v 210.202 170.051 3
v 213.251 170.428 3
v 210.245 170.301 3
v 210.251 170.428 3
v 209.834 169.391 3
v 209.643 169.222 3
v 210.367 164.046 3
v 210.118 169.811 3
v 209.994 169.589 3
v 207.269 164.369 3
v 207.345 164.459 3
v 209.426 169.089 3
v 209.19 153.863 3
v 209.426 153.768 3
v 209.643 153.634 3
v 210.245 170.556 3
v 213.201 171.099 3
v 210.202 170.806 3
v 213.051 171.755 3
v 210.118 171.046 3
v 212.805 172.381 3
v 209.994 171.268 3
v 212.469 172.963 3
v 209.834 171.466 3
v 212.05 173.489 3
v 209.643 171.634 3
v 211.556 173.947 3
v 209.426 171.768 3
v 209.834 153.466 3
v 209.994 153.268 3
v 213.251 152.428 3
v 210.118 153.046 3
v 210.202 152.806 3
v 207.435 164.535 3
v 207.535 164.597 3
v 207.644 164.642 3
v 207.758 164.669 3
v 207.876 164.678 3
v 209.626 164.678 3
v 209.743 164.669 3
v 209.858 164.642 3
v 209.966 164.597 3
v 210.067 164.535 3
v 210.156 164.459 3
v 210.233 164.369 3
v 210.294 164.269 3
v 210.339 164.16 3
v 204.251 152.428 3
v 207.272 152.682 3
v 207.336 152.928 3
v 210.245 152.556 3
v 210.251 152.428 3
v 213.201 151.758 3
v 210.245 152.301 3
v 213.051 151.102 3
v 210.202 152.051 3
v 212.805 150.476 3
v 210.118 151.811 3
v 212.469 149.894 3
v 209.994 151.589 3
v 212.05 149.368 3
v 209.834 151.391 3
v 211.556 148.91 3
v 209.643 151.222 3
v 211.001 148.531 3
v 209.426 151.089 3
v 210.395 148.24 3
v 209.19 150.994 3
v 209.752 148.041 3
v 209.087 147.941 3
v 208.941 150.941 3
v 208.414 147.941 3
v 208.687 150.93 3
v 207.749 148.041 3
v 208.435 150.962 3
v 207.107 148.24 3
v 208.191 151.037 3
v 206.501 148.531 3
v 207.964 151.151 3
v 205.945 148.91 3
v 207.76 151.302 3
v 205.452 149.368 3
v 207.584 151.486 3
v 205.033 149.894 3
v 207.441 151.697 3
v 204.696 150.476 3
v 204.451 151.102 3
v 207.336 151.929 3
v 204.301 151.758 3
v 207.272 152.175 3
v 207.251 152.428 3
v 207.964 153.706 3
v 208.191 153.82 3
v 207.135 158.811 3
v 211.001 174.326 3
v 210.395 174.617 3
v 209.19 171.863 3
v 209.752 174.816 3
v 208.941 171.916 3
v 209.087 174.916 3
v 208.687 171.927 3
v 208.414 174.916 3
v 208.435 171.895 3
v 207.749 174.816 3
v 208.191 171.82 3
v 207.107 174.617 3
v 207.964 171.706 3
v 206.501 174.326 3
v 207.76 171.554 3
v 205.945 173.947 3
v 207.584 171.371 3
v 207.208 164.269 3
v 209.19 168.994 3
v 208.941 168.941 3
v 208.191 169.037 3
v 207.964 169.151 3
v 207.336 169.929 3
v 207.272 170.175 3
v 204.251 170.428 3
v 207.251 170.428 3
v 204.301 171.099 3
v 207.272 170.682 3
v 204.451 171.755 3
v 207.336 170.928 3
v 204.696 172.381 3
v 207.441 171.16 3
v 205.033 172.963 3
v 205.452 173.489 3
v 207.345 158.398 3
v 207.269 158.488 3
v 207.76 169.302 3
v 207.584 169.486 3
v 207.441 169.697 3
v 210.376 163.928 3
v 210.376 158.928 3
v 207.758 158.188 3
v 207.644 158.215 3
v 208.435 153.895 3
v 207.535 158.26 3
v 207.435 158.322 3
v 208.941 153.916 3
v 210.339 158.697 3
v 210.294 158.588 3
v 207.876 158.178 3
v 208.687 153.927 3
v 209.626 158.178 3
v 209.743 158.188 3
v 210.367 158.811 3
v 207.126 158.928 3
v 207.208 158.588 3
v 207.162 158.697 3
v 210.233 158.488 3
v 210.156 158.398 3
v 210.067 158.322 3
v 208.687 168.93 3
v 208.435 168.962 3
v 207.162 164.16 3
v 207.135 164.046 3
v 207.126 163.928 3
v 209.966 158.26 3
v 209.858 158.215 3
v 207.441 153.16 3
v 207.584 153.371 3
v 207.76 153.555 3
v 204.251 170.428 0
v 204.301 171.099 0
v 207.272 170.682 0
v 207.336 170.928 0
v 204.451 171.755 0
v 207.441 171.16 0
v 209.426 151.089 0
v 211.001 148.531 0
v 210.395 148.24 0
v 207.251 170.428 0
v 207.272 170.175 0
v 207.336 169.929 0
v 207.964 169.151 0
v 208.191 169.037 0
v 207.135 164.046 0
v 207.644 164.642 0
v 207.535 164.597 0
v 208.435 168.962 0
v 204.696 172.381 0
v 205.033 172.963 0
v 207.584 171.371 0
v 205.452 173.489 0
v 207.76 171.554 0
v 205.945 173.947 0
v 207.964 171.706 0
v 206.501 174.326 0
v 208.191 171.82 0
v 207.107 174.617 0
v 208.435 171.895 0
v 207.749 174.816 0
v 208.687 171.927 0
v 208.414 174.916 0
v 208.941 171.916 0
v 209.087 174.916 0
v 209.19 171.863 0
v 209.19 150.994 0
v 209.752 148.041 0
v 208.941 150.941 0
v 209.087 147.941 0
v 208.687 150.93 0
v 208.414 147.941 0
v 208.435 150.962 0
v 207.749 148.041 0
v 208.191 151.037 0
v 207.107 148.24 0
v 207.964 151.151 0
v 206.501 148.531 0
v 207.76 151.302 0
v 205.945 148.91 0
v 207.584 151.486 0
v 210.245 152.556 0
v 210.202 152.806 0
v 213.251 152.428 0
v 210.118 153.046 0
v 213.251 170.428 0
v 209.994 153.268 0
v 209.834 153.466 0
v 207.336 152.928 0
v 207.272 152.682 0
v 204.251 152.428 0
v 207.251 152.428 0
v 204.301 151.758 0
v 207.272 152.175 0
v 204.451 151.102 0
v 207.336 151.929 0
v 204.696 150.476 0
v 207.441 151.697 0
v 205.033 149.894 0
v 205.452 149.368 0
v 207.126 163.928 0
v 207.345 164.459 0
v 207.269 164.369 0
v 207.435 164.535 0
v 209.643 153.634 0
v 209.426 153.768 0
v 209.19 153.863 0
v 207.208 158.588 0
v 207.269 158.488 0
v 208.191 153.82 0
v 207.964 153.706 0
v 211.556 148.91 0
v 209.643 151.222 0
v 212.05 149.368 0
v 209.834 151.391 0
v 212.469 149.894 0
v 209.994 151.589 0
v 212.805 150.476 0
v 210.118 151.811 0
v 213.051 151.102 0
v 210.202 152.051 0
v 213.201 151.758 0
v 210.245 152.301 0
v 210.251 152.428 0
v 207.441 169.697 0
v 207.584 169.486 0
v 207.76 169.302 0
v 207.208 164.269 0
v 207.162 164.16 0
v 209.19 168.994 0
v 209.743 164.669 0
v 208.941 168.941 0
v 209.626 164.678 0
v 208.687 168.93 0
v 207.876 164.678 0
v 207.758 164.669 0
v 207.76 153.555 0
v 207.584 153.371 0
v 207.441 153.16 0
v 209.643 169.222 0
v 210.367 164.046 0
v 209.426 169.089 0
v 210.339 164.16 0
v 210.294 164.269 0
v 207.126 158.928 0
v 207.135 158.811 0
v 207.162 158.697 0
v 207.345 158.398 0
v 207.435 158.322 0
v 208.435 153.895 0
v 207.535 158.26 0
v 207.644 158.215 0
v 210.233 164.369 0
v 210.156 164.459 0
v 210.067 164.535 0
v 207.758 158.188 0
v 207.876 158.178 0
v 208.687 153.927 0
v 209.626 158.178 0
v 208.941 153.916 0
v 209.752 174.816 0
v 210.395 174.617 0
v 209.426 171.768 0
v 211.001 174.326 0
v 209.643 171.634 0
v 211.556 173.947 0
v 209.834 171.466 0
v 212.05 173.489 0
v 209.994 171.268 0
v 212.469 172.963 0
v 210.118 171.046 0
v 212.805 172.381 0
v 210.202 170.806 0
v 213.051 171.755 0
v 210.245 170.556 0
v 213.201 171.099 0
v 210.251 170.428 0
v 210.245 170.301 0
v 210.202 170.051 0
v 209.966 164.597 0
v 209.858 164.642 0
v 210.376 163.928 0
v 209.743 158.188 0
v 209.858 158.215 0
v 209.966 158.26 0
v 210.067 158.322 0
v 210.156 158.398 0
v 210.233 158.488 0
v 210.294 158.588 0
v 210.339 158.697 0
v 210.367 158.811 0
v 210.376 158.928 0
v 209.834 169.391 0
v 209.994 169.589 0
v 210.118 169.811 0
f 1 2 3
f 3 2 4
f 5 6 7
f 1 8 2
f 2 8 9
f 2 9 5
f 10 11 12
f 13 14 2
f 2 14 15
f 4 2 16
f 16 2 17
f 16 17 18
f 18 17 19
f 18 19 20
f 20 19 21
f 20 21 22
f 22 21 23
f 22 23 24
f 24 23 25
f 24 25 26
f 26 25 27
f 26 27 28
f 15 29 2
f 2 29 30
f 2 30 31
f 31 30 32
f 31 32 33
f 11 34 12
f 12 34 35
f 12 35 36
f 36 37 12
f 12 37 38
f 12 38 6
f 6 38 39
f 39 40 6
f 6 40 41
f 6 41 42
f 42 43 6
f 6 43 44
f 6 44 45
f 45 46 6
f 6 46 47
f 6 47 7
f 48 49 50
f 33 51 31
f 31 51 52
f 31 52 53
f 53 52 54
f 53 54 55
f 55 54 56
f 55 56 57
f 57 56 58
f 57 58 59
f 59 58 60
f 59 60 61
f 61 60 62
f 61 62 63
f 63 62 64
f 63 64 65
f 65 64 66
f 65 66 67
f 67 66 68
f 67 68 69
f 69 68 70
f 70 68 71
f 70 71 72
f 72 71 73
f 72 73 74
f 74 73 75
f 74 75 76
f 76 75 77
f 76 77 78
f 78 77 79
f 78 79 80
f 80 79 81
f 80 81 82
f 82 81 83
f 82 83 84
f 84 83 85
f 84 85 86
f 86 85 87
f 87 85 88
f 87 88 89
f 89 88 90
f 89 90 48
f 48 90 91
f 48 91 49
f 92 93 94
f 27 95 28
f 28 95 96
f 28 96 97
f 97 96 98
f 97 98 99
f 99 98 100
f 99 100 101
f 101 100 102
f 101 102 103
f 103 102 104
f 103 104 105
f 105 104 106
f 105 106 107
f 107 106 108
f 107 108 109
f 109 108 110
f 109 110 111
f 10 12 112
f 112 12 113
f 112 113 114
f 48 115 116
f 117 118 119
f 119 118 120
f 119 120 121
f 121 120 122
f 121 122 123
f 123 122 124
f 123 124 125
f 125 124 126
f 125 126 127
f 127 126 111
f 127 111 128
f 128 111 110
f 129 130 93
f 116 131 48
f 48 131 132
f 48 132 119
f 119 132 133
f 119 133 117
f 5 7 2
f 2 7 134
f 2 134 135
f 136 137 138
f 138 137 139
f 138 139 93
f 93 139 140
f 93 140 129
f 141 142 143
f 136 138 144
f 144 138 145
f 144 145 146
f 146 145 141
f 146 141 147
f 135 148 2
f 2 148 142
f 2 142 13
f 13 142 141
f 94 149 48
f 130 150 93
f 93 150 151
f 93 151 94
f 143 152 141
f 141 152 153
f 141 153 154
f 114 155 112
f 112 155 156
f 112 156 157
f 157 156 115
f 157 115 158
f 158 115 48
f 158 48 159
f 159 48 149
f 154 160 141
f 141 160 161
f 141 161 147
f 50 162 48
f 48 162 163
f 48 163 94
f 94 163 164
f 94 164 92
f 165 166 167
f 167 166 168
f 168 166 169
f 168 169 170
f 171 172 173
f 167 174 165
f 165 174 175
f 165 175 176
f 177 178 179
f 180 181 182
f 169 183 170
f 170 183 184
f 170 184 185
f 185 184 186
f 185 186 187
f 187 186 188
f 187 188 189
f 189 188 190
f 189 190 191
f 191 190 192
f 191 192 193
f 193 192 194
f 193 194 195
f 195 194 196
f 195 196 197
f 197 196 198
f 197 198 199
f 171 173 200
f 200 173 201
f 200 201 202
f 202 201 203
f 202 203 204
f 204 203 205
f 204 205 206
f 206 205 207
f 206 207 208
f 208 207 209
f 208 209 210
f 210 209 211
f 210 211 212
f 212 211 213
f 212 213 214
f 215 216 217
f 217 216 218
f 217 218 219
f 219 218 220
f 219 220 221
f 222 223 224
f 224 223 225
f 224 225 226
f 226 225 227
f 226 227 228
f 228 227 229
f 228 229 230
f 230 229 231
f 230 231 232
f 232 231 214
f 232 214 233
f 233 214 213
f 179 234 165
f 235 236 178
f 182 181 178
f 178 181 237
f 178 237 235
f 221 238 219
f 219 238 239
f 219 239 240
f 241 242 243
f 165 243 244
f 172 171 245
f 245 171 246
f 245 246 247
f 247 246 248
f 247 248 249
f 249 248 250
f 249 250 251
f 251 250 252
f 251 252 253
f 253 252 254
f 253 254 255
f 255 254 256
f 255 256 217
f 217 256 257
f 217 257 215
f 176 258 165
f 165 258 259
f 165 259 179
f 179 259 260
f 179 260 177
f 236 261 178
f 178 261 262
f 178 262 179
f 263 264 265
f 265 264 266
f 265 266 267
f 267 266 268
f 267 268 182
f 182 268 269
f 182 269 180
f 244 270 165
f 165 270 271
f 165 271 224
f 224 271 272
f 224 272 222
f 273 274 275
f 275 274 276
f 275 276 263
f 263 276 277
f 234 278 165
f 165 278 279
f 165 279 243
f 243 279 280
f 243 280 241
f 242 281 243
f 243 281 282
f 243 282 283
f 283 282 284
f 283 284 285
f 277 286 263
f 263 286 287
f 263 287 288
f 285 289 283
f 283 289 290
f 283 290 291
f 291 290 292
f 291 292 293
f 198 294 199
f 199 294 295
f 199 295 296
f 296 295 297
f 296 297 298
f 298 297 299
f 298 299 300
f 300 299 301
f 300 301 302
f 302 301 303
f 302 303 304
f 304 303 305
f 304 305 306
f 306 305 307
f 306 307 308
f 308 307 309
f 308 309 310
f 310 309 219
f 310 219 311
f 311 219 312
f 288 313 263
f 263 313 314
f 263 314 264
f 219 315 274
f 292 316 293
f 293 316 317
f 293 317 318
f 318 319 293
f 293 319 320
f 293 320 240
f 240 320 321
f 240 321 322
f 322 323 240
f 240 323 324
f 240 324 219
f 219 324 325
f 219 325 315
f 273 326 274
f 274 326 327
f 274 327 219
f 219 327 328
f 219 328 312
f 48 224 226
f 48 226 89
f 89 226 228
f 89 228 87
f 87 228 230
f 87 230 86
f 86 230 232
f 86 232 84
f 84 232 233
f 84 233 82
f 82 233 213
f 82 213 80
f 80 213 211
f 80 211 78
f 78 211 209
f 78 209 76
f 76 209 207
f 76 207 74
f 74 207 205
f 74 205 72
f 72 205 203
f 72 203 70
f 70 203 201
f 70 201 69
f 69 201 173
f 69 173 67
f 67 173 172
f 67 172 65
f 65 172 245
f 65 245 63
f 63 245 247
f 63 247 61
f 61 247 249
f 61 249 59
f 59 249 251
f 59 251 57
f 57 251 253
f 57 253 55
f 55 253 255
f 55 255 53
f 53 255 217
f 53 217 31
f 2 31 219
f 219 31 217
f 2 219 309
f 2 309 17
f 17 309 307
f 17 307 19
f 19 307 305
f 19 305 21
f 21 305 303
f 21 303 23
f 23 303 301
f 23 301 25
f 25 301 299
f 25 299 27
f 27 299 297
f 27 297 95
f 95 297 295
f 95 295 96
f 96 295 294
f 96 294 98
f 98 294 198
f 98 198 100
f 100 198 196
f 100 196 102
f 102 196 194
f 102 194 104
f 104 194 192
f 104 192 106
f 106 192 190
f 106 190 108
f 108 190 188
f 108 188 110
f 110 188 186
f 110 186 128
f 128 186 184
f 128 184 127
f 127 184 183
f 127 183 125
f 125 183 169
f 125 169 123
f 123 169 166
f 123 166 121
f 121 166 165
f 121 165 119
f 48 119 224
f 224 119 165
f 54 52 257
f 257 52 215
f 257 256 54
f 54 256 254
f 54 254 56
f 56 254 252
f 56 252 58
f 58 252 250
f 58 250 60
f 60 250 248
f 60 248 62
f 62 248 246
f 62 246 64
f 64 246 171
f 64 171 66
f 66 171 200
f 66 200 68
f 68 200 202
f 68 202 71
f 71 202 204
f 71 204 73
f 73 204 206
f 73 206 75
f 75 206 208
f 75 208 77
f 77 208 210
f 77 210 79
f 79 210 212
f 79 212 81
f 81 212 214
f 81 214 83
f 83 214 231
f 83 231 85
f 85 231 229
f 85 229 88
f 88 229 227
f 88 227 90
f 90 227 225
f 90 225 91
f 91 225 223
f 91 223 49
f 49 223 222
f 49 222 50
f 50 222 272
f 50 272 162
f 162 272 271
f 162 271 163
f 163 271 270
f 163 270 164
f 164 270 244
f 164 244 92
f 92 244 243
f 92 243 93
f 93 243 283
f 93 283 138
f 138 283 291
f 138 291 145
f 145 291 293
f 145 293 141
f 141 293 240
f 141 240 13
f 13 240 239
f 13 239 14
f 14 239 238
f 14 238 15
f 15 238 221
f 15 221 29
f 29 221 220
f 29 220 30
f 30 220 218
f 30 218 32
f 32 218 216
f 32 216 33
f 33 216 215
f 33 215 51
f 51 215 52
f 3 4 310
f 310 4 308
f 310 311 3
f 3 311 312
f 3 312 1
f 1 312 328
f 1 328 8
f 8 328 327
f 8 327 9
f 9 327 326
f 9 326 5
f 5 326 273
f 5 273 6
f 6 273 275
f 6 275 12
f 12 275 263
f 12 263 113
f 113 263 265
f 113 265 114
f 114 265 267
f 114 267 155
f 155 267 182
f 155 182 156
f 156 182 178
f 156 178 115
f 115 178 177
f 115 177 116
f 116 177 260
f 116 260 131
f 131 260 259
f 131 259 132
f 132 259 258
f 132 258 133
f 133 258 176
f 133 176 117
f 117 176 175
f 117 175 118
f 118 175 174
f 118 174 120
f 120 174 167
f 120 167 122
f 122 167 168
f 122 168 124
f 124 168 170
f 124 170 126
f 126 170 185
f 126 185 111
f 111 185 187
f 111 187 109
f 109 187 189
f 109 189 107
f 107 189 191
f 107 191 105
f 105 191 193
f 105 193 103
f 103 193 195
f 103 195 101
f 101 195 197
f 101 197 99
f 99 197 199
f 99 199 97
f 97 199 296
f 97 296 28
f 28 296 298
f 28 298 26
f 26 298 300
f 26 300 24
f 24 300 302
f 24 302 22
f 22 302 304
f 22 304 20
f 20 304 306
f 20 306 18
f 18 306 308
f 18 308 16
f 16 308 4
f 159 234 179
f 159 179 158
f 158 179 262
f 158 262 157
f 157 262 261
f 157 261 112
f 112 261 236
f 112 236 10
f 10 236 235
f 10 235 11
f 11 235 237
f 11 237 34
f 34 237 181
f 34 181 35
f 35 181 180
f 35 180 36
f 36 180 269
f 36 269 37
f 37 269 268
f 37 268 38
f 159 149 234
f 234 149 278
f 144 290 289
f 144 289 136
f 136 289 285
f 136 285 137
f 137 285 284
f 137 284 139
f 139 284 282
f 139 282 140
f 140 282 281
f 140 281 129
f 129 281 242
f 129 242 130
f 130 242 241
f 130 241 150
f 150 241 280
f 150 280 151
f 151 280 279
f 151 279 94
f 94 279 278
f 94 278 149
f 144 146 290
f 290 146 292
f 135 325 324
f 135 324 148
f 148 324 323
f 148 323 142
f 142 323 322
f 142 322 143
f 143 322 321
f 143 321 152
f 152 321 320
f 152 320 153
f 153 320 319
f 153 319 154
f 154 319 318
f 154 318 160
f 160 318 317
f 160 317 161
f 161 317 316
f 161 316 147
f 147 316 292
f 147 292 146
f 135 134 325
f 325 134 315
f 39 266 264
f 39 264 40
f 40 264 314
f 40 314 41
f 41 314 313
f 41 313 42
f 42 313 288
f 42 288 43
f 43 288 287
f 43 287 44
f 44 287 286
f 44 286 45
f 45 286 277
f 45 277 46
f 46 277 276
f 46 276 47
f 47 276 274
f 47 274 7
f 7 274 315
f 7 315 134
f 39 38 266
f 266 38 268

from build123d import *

# Parameters (mm, degrees)
MODEL_R                 = 1.5
SALIENTE_EXTRUIR1_DEPTH = 3


with BuildPart() as part:
    # Model → Saliente-Extruir1 (new body)
    with BuildSketch(Plane.XY):
        with BuildLine():
            Line((213.25077615, 152.428489513), (213.25077615, 170.428489513))
            ThreePointArc((213.25077615, 170.428489513), (208.75077615, 174.928489513), (204.25077615, 170.428489513))
            Line((204.25077615, 170.428489513), (204.25077615, 152.428489513))
            ThreePointArc((204.25077615, 152.428489513), (208.75077615, 147.928489513), (213.25077615, 152.428489513))
        make_face()
        with Locations((208.75077615, 152.428489513)):
            Circle(MODEL_R, mode=Mode.SUBTRACT)
        with Locations((208.75077615, 170.428489513)):
            Circle(MODEL_R, mode=Mode.SUBTRACT)
        with BuildLine():
            Line((207.12577615, 158.928489513), (207.12577615, 163.928489513))
            ThreePointArc((207.12577615, 163.928489513), (207.345446064, 164.458819599), (207.87577615, 164.678489513))
            Line((207.87577615, 164.678489513), (209.62577615, 164.678489513))
            ThreePointArc((209.62577615, 164.678489513), (210.156106235, 164.458819599), (210.37577615, 163.928489513))
            Line((210.37577615, 163.928489513), (210.37577615, 158.928489513))
            ThreePointArc((210.37577615, 158.928489513), (210.156106235, 158.398159427), (209.62577615, 158.178489513))
            Line((209.62577615, 158.178489513), (207.87577615, 158.178489513))
            ThreePointArc((207.87577615, 158.178489513), (207.345446064, 158.398159427), (207.12577615, 158.928489513))
        make_face(mode=Mode.SUBTRACT)
    extrude(amount=SALIENTE_EXTRUIR1_DEPTH)


solid = part.part
